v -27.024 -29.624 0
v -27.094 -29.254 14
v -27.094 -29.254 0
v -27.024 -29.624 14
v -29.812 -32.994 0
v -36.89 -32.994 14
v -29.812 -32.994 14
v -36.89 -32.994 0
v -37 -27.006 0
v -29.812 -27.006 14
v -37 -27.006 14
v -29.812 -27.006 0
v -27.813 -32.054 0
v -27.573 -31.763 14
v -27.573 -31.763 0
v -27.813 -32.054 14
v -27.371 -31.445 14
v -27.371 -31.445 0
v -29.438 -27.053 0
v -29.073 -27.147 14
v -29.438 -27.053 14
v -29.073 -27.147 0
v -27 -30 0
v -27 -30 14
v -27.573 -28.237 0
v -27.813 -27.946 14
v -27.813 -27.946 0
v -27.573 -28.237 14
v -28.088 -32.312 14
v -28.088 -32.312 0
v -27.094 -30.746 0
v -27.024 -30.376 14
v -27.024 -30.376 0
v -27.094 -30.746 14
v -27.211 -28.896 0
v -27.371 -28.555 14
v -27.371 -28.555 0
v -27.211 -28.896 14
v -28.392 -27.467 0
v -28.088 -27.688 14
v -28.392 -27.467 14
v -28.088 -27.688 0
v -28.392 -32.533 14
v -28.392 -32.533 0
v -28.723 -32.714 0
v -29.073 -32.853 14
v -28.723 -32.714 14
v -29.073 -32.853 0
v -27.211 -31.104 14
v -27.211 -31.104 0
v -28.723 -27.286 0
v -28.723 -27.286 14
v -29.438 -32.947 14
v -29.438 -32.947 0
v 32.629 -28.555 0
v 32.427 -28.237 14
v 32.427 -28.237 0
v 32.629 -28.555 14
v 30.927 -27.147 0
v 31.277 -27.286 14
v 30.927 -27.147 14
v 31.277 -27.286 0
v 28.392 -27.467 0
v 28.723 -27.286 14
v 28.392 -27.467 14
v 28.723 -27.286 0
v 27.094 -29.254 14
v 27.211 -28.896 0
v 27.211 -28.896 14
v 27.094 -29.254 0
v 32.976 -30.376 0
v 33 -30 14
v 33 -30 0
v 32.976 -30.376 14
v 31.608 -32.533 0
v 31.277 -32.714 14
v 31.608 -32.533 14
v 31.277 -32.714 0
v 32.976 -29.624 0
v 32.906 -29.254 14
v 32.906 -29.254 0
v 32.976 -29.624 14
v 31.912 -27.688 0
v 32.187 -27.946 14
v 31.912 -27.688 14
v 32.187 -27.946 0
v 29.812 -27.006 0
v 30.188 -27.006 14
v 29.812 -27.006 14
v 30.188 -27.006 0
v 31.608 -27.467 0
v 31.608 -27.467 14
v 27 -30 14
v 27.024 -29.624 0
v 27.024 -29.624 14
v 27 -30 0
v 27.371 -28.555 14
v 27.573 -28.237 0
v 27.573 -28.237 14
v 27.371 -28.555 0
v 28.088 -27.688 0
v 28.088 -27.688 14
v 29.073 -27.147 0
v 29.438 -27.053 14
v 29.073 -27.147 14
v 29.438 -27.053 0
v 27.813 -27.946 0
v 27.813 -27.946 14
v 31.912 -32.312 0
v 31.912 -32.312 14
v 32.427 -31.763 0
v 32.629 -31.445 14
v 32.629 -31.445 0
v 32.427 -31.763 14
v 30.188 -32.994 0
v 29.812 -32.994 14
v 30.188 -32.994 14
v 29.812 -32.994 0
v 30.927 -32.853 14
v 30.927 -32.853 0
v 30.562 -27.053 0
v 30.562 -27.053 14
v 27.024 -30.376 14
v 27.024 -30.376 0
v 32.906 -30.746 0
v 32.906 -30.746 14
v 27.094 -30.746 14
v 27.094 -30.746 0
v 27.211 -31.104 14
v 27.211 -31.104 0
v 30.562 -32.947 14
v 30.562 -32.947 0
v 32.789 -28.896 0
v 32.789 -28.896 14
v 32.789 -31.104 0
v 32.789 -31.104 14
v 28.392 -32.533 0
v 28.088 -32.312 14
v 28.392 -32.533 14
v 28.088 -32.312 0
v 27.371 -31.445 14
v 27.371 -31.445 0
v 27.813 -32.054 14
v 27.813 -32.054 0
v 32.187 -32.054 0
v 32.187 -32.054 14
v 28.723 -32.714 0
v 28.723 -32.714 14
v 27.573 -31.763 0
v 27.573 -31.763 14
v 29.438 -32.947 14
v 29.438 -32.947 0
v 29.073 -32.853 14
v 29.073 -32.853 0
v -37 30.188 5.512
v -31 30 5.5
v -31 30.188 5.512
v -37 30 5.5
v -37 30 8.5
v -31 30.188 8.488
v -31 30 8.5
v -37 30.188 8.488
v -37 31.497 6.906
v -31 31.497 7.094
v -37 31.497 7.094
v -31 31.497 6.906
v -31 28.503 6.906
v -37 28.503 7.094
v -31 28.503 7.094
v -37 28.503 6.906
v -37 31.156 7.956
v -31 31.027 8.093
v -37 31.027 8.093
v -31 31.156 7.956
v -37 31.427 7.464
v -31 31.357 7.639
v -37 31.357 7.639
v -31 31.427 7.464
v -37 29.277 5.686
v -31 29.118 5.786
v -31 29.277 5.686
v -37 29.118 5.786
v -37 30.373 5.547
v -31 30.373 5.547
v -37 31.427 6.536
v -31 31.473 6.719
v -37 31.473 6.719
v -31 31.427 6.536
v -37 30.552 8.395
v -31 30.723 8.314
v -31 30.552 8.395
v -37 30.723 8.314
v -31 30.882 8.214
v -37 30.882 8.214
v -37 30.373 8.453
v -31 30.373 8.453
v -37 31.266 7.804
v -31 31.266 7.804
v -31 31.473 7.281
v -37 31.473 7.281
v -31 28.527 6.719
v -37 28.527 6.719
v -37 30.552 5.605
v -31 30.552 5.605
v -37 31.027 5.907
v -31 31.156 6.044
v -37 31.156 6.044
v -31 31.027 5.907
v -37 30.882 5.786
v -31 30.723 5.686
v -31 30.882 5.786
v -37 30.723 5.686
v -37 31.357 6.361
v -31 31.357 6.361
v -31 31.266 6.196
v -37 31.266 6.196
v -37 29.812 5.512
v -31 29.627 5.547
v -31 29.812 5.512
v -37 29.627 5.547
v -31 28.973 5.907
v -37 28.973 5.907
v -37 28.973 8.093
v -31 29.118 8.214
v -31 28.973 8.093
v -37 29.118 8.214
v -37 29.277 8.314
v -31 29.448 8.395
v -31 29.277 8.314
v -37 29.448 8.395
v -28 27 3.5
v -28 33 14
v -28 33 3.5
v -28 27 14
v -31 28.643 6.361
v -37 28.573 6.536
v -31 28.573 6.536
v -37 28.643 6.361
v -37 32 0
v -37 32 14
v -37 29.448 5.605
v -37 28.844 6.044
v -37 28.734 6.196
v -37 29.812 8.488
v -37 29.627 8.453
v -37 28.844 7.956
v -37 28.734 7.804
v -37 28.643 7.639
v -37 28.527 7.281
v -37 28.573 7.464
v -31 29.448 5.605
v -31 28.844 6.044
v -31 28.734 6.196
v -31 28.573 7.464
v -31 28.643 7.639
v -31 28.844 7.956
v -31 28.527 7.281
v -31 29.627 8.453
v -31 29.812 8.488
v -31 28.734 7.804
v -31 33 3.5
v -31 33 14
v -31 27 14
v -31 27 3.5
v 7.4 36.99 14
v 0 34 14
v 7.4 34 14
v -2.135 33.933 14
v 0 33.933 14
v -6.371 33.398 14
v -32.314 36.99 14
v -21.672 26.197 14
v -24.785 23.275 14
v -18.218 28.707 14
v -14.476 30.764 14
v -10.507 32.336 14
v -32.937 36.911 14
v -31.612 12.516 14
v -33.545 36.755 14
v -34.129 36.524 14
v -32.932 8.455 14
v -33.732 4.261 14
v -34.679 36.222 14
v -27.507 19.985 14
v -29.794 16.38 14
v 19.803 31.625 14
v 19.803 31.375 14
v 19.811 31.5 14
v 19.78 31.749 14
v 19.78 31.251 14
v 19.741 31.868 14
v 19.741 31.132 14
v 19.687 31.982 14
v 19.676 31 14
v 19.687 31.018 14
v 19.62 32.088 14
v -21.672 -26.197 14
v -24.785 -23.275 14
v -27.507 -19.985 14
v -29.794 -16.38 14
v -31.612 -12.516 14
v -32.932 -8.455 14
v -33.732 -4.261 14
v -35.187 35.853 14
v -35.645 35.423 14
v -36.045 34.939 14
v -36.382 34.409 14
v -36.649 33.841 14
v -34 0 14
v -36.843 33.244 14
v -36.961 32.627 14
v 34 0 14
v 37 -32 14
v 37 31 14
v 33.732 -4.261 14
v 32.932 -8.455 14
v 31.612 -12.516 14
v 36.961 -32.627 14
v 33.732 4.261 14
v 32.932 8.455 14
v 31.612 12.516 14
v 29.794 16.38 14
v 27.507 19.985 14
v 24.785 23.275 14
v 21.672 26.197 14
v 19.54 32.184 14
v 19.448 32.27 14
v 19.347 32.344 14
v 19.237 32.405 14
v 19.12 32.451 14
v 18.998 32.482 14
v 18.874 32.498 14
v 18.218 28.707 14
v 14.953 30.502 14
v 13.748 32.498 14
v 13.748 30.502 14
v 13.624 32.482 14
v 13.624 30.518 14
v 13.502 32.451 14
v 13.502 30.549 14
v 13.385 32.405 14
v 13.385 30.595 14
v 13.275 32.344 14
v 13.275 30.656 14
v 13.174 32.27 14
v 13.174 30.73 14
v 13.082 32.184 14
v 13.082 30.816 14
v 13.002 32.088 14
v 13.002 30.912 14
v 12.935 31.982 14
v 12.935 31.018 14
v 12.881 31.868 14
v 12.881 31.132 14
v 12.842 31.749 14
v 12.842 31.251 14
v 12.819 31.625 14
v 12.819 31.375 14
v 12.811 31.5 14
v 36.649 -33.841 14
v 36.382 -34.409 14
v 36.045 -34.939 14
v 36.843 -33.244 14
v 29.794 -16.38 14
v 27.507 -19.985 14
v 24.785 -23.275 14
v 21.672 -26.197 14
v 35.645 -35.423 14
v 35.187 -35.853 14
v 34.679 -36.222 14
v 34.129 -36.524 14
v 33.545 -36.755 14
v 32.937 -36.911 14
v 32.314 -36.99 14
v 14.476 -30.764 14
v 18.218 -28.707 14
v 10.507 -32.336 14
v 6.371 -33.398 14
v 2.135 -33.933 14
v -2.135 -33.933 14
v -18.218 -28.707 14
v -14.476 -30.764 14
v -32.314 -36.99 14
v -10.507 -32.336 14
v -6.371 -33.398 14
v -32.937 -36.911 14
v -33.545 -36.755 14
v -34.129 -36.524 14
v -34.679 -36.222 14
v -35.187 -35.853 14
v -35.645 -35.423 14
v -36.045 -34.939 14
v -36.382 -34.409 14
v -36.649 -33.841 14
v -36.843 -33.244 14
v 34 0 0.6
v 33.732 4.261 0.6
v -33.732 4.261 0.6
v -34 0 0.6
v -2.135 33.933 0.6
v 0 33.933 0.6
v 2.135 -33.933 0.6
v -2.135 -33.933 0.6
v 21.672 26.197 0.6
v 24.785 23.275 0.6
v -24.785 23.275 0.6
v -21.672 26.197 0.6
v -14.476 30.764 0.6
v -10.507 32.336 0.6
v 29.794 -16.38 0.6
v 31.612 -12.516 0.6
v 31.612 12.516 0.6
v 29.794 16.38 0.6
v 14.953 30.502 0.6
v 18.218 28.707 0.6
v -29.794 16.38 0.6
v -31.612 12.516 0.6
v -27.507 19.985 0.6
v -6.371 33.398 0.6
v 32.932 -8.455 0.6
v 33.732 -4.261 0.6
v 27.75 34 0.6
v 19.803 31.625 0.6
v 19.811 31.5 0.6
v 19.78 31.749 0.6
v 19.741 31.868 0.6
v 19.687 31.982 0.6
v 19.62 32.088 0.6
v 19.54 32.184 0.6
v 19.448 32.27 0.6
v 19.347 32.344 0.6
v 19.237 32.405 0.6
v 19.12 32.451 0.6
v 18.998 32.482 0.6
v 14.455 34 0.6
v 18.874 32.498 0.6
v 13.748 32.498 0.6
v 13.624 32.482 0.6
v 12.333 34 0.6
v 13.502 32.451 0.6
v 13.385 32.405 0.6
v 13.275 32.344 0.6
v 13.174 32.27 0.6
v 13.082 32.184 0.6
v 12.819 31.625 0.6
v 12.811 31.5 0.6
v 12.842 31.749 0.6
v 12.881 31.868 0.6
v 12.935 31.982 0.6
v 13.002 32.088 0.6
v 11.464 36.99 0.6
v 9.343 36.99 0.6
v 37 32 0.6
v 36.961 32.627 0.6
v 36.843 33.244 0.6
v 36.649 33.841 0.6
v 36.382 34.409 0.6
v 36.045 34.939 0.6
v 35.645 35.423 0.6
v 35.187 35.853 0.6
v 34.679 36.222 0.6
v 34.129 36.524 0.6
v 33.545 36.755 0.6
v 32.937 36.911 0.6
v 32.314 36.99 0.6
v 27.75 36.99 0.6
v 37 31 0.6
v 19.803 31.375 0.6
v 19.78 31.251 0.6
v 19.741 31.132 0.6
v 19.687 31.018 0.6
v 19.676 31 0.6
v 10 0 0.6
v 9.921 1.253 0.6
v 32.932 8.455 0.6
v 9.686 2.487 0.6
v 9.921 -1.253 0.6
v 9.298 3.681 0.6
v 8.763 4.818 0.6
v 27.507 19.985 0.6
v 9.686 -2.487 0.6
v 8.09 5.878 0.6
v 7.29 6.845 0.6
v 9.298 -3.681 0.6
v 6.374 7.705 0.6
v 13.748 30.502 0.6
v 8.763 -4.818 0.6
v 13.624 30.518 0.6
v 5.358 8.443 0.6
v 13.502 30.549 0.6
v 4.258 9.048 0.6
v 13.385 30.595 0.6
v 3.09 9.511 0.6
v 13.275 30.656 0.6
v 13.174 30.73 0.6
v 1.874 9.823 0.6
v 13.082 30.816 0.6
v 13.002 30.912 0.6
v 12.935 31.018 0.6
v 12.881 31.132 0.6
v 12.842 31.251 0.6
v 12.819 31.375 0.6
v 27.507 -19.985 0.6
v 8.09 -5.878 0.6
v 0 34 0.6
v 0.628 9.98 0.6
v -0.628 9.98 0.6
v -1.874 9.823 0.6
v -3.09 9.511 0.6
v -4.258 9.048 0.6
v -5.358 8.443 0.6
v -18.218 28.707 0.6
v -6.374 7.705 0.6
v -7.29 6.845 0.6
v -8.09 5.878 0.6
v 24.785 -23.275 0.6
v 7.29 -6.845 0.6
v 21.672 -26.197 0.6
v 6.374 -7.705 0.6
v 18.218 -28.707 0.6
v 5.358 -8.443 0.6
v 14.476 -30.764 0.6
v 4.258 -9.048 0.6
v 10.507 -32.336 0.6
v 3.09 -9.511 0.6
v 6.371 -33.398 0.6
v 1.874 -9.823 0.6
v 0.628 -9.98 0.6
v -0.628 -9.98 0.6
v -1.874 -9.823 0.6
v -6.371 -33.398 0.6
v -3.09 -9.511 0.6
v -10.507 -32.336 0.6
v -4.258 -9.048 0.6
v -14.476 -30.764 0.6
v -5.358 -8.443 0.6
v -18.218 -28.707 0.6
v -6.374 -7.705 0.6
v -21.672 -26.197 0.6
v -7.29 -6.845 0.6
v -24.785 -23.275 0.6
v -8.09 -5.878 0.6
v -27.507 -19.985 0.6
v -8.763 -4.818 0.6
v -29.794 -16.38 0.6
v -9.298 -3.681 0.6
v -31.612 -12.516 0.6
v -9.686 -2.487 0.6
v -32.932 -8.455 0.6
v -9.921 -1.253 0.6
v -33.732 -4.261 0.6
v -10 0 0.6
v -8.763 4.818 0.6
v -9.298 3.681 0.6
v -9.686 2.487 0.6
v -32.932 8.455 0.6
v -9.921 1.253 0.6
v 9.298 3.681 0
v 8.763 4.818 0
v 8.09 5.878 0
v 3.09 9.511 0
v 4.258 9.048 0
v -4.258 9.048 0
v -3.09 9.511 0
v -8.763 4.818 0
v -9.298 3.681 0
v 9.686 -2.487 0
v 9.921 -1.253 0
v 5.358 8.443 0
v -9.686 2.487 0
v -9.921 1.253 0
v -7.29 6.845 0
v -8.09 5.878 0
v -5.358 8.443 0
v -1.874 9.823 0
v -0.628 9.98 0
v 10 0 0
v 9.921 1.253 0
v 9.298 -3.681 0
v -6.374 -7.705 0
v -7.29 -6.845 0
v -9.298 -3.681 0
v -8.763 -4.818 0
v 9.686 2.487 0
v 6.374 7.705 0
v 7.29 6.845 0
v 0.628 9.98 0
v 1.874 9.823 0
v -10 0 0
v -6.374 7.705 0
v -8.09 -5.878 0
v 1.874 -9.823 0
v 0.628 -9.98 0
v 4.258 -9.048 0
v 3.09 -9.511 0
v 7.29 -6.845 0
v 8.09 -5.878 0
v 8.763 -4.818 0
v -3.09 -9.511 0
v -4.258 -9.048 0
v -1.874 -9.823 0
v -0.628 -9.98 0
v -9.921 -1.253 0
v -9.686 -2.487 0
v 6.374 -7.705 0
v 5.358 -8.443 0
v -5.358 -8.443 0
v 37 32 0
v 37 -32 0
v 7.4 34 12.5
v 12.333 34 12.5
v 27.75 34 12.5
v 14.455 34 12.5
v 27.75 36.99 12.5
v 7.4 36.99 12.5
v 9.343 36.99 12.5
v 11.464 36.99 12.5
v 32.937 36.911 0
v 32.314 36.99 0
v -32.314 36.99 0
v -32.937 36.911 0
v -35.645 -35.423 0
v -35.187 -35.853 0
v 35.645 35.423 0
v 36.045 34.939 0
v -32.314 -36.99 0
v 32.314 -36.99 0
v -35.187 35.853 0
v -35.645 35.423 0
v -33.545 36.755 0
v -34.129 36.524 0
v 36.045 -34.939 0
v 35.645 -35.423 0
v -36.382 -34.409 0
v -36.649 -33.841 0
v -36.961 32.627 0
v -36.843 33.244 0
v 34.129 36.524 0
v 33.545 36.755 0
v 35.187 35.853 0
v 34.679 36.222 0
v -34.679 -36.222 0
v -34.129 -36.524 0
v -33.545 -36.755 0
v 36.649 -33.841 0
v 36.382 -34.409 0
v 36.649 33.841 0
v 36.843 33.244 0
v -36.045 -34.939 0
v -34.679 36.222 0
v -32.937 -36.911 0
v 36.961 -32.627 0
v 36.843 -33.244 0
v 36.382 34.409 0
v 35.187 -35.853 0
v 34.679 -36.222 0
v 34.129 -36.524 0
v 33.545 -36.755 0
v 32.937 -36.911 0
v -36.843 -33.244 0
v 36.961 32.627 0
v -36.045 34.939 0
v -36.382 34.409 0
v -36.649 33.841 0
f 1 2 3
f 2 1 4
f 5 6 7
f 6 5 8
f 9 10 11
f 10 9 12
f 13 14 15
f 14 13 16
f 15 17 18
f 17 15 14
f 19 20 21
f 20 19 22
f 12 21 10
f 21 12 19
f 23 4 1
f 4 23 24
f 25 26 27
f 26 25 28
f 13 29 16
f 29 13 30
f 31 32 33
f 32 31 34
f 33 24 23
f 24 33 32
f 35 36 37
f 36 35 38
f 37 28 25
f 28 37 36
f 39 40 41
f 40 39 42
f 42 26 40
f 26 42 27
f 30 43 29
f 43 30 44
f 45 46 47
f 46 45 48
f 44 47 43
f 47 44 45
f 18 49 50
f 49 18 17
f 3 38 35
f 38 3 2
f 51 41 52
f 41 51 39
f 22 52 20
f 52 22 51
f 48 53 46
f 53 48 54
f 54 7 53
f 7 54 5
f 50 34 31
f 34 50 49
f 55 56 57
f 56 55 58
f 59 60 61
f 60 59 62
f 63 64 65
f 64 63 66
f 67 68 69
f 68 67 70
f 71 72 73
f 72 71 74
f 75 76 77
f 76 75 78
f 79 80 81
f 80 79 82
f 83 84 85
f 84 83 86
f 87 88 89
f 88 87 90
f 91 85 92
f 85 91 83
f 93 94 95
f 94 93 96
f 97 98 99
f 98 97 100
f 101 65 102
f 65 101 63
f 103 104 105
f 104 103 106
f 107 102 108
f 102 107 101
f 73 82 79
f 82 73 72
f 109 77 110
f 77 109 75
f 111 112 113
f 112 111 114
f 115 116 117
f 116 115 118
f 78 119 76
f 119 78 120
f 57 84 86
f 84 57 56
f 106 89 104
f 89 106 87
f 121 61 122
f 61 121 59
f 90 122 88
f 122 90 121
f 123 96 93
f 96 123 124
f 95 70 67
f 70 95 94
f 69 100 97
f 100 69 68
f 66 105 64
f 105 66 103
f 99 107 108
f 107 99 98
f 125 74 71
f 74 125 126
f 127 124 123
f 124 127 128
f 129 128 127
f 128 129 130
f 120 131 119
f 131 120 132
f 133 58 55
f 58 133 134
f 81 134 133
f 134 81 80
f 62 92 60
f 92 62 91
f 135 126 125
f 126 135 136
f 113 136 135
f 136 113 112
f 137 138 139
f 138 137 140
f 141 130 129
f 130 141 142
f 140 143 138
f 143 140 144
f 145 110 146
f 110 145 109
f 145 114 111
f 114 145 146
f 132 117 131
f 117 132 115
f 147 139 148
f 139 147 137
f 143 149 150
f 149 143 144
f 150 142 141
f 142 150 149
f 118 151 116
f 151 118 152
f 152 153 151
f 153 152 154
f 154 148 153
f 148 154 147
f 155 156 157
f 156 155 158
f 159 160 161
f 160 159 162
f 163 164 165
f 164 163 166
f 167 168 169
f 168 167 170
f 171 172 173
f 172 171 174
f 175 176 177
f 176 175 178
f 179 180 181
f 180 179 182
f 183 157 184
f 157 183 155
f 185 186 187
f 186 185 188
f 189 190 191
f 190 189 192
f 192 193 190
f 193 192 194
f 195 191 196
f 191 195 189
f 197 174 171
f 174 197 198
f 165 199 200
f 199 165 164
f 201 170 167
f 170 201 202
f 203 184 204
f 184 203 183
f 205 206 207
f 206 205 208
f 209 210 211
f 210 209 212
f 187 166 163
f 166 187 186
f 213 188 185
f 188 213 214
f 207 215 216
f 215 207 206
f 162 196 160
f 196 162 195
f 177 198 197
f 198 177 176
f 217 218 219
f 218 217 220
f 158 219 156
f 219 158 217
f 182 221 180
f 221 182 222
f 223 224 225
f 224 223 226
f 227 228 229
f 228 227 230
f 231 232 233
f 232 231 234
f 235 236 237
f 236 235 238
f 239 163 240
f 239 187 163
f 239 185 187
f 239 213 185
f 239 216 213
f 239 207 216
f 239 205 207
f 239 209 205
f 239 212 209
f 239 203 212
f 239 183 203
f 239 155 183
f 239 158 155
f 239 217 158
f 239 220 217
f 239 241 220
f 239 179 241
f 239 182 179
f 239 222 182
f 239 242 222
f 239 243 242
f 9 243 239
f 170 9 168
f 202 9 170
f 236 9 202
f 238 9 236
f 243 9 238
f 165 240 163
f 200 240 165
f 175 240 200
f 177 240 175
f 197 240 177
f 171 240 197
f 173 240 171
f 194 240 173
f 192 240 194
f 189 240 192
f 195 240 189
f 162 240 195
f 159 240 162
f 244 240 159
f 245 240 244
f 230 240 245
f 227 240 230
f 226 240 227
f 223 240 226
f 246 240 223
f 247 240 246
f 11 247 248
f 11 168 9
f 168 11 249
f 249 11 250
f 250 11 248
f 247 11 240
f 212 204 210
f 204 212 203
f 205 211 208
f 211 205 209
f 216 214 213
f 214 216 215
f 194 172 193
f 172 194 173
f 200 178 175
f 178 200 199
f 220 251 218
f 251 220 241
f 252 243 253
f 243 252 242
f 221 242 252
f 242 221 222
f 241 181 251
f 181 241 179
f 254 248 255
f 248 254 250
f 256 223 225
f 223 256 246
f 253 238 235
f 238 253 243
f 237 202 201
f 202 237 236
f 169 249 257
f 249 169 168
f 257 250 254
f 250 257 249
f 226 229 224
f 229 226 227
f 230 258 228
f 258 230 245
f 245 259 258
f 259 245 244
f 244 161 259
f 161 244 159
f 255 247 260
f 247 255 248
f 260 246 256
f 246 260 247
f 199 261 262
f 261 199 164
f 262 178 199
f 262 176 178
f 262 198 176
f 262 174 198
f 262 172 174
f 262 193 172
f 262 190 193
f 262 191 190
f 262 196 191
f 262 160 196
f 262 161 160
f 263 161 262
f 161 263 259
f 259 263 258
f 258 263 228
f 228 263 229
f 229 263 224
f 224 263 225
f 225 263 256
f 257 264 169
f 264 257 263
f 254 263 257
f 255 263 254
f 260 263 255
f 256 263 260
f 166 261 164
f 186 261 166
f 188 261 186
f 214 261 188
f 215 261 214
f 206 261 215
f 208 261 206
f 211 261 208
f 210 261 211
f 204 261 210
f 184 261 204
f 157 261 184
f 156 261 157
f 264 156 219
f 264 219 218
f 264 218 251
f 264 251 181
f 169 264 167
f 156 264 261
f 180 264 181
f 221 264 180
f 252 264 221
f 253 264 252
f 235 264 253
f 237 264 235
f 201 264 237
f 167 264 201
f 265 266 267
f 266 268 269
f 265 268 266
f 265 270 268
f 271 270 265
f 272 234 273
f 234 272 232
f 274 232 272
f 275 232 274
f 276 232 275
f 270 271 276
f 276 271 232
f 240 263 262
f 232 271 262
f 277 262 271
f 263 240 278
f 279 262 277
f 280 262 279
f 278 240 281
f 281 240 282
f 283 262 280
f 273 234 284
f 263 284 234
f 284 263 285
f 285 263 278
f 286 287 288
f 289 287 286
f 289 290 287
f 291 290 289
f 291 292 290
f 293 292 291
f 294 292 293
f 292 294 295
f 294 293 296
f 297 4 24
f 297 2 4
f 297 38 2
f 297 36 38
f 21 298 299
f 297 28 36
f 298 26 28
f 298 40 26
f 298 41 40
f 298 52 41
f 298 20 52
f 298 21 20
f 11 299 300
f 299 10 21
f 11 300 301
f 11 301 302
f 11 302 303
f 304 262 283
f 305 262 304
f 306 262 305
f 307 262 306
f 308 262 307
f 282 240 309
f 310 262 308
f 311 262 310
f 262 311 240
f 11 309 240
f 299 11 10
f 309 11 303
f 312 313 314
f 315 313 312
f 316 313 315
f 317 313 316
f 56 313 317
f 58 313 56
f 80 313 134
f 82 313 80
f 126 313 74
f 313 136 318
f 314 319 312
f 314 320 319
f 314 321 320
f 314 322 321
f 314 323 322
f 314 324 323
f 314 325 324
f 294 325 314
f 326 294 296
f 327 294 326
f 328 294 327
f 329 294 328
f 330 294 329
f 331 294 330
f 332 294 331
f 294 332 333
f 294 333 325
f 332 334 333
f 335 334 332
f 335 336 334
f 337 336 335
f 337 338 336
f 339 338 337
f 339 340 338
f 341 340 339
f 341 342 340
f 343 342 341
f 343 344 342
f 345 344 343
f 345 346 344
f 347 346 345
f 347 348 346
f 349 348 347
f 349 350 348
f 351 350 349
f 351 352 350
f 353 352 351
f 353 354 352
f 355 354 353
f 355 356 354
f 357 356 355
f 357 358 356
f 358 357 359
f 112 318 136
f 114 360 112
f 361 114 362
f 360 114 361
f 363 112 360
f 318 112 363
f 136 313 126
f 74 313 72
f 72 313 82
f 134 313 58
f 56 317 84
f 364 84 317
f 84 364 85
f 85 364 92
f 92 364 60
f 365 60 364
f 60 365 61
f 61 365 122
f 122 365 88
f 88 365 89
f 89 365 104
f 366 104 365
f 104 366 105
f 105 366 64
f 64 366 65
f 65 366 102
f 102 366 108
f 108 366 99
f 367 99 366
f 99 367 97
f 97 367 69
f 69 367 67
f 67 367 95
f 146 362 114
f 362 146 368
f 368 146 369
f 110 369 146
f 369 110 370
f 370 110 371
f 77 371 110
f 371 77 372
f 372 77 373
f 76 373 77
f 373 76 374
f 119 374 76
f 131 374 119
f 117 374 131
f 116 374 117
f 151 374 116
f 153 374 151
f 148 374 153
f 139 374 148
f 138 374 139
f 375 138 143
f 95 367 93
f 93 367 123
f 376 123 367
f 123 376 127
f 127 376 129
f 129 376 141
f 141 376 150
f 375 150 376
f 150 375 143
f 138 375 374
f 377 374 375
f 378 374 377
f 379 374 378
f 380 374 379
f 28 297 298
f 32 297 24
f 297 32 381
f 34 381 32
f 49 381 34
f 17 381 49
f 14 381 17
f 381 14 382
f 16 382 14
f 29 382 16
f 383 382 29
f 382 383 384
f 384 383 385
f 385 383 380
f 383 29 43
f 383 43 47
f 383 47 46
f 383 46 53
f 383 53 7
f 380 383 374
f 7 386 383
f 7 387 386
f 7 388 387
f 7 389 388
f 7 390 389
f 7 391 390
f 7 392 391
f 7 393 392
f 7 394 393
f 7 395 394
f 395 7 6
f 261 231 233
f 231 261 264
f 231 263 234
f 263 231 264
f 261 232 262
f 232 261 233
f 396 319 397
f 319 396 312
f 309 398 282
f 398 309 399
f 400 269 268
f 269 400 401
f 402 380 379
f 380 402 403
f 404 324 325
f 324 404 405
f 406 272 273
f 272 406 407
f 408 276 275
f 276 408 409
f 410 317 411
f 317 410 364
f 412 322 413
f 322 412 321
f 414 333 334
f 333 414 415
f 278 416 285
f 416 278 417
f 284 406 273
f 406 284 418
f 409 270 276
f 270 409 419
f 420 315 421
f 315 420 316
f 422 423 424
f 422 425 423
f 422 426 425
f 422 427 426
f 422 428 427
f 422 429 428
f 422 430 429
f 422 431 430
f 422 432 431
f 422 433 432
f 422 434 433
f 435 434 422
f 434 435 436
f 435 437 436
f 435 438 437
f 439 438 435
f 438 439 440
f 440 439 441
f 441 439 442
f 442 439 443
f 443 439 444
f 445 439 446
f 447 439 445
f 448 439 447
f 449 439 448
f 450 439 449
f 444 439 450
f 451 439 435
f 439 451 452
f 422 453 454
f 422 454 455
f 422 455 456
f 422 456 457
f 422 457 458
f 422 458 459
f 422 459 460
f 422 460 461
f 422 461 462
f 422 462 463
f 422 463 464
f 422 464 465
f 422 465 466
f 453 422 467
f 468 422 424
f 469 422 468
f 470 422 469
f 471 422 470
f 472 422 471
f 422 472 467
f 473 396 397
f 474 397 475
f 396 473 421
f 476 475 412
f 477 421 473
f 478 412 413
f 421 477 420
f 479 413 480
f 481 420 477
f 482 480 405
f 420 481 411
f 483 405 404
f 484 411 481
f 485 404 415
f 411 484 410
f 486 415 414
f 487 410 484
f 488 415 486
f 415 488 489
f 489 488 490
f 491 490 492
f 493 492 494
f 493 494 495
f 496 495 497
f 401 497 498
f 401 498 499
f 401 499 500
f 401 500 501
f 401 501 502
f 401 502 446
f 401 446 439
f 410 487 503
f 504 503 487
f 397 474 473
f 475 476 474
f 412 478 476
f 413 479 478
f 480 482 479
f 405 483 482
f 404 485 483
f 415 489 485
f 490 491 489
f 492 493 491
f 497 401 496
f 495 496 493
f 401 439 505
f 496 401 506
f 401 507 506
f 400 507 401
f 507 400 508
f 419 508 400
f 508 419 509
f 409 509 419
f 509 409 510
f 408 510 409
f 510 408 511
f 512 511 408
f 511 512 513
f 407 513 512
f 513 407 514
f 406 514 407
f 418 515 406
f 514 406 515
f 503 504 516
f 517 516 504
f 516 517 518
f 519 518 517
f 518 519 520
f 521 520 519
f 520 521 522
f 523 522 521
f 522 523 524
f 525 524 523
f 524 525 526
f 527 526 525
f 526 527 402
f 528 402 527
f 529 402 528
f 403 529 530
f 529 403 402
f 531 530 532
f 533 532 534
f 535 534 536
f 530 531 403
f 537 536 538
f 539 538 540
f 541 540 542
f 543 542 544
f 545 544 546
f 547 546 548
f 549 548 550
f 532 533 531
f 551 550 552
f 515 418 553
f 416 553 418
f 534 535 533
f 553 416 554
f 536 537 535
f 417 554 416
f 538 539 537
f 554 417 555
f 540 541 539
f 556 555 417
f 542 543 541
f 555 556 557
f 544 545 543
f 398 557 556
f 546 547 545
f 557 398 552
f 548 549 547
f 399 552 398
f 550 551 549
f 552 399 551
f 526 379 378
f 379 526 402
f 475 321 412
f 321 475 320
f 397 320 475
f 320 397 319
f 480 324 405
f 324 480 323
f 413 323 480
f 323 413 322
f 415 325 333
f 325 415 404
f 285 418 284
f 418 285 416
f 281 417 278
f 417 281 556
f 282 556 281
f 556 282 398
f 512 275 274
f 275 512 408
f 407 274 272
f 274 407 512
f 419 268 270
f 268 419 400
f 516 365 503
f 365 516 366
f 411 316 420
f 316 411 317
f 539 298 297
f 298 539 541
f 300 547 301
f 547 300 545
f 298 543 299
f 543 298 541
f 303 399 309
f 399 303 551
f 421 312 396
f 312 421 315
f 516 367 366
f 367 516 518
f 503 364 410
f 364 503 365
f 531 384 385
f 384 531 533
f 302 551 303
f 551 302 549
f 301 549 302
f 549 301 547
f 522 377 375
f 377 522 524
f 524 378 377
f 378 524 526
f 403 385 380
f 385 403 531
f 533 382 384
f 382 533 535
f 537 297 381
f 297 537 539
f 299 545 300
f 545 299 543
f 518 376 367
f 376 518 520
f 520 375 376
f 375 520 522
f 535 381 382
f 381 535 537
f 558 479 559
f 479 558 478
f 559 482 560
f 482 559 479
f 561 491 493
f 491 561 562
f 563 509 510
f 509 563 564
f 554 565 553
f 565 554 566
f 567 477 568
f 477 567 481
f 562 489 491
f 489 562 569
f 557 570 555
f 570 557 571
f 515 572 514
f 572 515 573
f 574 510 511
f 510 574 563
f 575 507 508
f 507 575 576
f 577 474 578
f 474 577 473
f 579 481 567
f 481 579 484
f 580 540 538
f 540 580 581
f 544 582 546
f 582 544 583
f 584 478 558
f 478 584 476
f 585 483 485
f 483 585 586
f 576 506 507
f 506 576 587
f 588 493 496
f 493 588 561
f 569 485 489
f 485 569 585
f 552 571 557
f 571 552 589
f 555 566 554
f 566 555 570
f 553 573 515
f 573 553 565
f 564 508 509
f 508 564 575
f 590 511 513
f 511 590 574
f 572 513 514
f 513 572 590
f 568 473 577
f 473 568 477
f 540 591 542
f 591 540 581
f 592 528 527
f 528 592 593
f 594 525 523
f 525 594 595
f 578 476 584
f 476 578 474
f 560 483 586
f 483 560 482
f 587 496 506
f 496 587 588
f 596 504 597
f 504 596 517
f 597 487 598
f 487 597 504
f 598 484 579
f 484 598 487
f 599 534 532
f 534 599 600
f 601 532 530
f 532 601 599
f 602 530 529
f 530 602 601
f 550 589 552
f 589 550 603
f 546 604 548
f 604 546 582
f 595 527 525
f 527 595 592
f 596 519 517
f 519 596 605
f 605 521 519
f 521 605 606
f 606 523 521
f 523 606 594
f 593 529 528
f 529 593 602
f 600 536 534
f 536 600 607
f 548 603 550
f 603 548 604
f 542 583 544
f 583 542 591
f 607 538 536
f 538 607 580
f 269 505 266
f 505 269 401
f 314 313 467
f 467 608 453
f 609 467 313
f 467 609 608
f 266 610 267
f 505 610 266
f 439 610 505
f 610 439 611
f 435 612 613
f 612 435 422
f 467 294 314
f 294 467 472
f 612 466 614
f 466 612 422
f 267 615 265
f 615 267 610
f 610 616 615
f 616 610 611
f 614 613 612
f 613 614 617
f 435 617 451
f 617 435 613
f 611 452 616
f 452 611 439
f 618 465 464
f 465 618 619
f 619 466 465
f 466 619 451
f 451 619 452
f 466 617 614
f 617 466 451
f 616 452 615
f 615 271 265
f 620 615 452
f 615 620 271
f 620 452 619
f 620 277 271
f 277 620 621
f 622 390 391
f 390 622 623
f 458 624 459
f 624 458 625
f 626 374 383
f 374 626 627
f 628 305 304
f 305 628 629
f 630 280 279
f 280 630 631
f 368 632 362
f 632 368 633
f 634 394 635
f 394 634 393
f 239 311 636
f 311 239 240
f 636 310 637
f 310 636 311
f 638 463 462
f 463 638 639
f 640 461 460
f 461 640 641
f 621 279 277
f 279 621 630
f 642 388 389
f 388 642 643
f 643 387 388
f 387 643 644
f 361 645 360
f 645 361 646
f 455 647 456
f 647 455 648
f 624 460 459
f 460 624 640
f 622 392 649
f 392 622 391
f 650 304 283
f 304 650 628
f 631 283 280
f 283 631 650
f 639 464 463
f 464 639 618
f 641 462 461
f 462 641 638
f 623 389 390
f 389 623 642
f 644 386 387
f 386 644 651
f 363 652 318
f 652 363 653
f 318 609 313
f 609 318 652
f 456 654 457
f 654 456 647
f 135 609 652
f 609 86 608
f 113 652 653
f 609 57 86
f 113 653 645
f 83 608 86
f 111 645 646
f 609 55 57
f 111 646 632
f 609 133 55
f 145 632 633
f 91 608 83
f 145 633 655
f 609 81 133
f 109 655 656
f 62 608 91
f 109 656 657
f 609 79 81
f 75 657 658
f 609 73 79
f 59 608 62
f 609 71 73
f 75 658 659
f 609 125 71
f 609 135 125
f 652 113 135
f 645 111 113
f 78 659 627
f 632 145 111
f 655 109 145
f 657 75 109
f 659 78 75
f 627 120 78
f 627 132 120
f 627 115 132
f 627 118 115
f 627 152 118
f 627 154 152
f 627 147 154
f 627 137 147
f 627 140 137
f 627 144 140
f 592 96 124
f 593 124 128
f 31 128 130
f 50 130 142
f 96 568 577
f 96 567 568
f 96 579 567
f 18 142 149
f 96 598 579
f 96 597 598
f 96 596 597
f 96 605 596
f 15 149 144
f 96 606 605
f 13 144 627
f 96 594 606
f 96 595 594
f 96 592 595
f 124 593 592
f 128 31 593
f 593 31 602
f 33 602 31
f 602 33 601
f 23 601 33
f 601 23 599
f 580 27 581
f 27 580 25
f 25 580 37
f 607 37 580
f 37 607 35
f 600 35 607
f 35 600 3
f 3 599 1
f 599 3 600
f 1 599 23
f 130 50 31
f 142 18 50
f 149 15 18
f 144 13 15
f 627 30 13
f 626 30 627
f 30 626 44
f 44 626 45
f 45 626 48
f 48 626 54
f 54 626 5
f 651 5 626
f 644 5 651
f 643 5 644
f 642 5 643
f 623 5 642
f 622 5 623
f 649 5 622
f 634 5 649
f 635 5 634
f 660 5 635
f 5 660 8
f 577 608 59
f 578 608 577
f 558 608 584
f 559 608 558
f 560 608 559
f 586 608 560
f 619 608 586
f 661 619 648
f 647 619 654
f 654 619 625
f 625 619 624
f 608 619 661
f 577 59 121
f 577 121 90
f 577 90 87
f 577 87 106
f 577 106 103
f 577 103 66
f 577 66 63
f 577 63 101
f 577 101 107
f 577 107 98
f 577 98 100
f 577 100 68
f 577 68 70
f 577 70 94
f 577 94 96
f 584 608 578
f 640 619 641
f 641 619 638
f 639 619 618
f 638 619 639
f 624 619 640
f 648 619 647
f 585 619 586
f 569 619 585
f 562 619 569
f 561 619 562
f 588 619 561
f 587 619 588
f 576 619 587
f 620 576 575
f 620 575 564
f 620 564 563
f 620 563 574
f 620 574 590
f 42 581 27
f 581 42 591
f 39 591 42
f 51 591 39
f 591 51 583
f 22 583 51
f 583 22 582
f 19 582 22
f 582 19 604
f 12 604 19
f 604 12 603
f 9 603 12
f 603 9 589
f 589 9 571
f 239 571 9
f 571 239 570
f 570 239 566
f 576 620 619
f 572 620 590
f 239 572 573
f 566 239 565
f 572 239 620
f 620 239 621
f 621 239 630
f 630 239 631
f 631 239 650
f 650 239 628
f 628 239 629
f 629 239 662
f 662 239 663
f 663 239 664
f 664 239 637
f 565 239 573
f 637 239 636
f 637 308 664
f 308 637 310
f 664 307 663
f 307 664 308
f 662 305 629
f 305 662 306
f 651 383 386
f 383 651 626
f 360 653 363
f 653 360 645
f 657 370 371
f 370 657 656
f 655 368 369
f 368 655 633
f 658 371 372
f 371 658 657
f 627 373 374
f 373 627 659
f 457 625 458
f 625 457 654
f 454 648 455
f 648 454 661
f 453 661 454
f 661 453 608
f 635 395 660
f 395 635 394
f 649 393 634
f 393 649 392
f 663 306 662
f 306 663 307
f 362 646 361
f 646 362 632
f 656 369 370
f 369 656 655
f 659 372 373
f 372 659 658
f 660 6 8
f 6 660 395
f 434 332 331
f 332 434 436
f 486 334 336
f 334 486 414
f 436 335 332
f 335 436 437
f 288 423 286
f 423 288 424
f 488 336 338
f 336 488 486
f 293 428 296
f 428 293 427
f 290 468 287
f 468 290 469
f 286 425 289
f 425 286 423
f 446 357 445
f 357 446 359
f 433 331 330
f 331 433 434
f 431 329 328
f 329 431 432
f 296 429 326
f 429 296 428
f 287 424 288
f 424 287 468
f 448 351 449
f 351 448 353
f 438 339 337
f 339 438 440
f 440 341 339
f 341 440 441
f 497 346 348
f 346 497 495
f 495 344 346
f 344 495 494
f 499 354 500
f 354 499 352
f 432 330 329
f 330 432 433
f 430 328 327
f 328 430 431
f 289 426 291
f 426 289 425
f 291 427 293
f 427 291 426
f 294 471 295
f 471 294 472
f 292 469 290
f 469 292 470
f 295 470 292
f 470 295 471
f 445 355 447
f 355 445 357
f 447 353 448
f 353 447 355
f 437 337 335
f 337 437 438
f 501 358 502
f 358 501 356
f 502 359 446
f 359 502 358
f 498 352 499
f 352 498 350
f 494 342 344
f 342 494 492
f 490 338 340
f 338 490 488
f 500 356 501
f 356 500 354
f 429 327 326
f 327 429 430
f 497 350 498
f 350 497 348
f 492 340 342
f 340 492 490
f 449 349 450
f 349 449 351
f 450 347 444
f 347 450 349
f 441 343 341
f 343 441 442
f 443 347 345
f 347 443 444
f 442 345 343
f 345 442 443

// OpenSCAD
$fn = 50;


union() {
	difference() {
		union() {
			translate(v = [0, 0, 0]) {
				rotate(a = [0, 0, 0]) {
					hull() {
						translate(v = [-32.0000000000, 32.0000000000, 0]) {
							rotate(a = [0, 0, 0]) {
								translate(v = [0, 0, 0]) {
									rotate(a = [0, 0, 0]) {
										cylinder(h = 14, r = 5);
									}
								}
							}
						}
						translate(v = [32.0000000000, 32.0000000000, 0]) {
							rotate(a = [0, 0, 0]) {
								translate(v = [0, 0, 0]) {
									rotate(a = [0, 0, 0]) {
										cylinder(h = 14, r = 5);
									}
								}
							}
						}
						translate(v = [-32.0000000000, -32.0000000000, 0]) {
							rotate(a = [0, 0, 0]) {
								translate(v = [0, 0, 0]) {
									rotate(a = [0, 0, 0]) {
										cylinder(h = 14, r = 5);
									}
								}
							}
						}
						translate(v = [32.0000000000, -32.0000000000, 0]) {
							rotate(a = [0, 0, 0]) {
								translate(v = [0, 0, 0]) {
									rotate(a = [0, 0, 0]) {
										cylinder(h = 14, r = 5);
									}
								}
							}
						}
					}
				}
			}
		}
		union() {
			translate(v = [-37.5000000000, -30.0000000000, -125]) {
				rotate(a = [0, 0, 0]) {
					hull() {
						translate(v = [7.5000000000, 0, 0]) {
							rotate(a = [0, 0, 0]) {
								translate(v = [0, 0, 0]) {
									rotate(a = [0, 0, 0]) {
										cylinder(h = 250, r = 3.0000000000);
									}
								}
							}
						}
						translate(v = [-7.5000000000, 0, 0]) {
							rotate(a = [0, 0, 0]) {
								translate(v = [0, 0, 0]) {
									rotate(a = [0, 0, 0]) {
										cylinder(h = 250, r = 3.0000000000);
									}
								}
							}
						}
					}
				}
			}
			translate(v = [30.0000000000, -30.0000000000, -125.0000000000]) {
				rotate(a = [0, 0, 0]) {
					cylinder(h = 250, r = 3.0000000000);
				}
			}
			translate(v = [-37.0000000000, 30.0000000000, 7.0000000000]) {
				rotate(a = [0, 90, 0]) {
					cylinder(h = 9, r = 1.5000000000);
				}
			}
			translate(v = [-31.0000000000, 27.0000000000, 3.5000000000]) {
				rotate(a = [0, 0, 0]) {
					cube(size = [3, 6, 10.5000000000]);
				}
			}
			translate(v = [0, 0, 0.6000000000]) {
				rotate(a = [0, 0, 0]) {
					cylinder(h = 16.4000000000, r = 34.0000000000);
				}
			}
			translate(v = [0, 0, -7.0000000000]) {
				rotate(a = [0, 0, 0]) {
					cylinder(h = 14, r = 10.0000000000);
				}
			}
			translate(v = [0.0000000000, 31.0000000000, 0.6000000000]) {
				rotate(a = [0, 0, 0]) {
					cube(size = [37.0000000000, 3, 16.4000000000]);
				}
			}
			translate(v = [27.7500000000, 31.0000000000, 0.6000000000]) {
				rotate(a = [0, 0, 0]) {
					cube(size = [9.2500000000, 6, 16.4000000000]);
				}
			}
			translate(v = [7.4000000000, 31.0000000000, 12.5000000000]) {
				rotate(a = [0, 0, 0]) {
					cube(size = [29.6000000000, 6, 1.5000000000]);
				}
			}
			translate(v = [8.5833333333, 37.7500000000, 0.6000000000]) {
				rotate(a = [0, 0, -45]) {
					cube(size = [7.5000000000, 1.5000000000, 16.4000000000]);
				}
			}
			translate(v = [7.0610000000, 30.5000000000, 0.6000000000]) {
				rotate(a = [0, 0, 0]) {
					cube(size = [7.5000000000, 2, 13.4000000000]);
				}
			}
		}
	}
	union() {
		translate(v = [16.3110000000, 31.5000000000, 0]) {
			rotate(a = [0, 0, 0]) {
				hull() {
					translate(v = [2.5000000000, 0, 0]) {
						rotate(a = [0, 0, 0]) {
							translate(v = [0, 0, 0]) {
								rotate(a = [0, 0, 0]) {
									cylinder(h = 14, r = 1.0000000000);
								}
							}
						}
					}
					translate(v = [-2.5000000000, 0, 0]) {
						rotate(a = [0, 0, 0]) {
							translate(v = [0, 0, 0]) {
								rotate(a = [0, 0, 0]) {
									cylinder(h = 14, r = 1.0000000000);
								}
							}
						}
					}
				}
			}
		}
	}
}
